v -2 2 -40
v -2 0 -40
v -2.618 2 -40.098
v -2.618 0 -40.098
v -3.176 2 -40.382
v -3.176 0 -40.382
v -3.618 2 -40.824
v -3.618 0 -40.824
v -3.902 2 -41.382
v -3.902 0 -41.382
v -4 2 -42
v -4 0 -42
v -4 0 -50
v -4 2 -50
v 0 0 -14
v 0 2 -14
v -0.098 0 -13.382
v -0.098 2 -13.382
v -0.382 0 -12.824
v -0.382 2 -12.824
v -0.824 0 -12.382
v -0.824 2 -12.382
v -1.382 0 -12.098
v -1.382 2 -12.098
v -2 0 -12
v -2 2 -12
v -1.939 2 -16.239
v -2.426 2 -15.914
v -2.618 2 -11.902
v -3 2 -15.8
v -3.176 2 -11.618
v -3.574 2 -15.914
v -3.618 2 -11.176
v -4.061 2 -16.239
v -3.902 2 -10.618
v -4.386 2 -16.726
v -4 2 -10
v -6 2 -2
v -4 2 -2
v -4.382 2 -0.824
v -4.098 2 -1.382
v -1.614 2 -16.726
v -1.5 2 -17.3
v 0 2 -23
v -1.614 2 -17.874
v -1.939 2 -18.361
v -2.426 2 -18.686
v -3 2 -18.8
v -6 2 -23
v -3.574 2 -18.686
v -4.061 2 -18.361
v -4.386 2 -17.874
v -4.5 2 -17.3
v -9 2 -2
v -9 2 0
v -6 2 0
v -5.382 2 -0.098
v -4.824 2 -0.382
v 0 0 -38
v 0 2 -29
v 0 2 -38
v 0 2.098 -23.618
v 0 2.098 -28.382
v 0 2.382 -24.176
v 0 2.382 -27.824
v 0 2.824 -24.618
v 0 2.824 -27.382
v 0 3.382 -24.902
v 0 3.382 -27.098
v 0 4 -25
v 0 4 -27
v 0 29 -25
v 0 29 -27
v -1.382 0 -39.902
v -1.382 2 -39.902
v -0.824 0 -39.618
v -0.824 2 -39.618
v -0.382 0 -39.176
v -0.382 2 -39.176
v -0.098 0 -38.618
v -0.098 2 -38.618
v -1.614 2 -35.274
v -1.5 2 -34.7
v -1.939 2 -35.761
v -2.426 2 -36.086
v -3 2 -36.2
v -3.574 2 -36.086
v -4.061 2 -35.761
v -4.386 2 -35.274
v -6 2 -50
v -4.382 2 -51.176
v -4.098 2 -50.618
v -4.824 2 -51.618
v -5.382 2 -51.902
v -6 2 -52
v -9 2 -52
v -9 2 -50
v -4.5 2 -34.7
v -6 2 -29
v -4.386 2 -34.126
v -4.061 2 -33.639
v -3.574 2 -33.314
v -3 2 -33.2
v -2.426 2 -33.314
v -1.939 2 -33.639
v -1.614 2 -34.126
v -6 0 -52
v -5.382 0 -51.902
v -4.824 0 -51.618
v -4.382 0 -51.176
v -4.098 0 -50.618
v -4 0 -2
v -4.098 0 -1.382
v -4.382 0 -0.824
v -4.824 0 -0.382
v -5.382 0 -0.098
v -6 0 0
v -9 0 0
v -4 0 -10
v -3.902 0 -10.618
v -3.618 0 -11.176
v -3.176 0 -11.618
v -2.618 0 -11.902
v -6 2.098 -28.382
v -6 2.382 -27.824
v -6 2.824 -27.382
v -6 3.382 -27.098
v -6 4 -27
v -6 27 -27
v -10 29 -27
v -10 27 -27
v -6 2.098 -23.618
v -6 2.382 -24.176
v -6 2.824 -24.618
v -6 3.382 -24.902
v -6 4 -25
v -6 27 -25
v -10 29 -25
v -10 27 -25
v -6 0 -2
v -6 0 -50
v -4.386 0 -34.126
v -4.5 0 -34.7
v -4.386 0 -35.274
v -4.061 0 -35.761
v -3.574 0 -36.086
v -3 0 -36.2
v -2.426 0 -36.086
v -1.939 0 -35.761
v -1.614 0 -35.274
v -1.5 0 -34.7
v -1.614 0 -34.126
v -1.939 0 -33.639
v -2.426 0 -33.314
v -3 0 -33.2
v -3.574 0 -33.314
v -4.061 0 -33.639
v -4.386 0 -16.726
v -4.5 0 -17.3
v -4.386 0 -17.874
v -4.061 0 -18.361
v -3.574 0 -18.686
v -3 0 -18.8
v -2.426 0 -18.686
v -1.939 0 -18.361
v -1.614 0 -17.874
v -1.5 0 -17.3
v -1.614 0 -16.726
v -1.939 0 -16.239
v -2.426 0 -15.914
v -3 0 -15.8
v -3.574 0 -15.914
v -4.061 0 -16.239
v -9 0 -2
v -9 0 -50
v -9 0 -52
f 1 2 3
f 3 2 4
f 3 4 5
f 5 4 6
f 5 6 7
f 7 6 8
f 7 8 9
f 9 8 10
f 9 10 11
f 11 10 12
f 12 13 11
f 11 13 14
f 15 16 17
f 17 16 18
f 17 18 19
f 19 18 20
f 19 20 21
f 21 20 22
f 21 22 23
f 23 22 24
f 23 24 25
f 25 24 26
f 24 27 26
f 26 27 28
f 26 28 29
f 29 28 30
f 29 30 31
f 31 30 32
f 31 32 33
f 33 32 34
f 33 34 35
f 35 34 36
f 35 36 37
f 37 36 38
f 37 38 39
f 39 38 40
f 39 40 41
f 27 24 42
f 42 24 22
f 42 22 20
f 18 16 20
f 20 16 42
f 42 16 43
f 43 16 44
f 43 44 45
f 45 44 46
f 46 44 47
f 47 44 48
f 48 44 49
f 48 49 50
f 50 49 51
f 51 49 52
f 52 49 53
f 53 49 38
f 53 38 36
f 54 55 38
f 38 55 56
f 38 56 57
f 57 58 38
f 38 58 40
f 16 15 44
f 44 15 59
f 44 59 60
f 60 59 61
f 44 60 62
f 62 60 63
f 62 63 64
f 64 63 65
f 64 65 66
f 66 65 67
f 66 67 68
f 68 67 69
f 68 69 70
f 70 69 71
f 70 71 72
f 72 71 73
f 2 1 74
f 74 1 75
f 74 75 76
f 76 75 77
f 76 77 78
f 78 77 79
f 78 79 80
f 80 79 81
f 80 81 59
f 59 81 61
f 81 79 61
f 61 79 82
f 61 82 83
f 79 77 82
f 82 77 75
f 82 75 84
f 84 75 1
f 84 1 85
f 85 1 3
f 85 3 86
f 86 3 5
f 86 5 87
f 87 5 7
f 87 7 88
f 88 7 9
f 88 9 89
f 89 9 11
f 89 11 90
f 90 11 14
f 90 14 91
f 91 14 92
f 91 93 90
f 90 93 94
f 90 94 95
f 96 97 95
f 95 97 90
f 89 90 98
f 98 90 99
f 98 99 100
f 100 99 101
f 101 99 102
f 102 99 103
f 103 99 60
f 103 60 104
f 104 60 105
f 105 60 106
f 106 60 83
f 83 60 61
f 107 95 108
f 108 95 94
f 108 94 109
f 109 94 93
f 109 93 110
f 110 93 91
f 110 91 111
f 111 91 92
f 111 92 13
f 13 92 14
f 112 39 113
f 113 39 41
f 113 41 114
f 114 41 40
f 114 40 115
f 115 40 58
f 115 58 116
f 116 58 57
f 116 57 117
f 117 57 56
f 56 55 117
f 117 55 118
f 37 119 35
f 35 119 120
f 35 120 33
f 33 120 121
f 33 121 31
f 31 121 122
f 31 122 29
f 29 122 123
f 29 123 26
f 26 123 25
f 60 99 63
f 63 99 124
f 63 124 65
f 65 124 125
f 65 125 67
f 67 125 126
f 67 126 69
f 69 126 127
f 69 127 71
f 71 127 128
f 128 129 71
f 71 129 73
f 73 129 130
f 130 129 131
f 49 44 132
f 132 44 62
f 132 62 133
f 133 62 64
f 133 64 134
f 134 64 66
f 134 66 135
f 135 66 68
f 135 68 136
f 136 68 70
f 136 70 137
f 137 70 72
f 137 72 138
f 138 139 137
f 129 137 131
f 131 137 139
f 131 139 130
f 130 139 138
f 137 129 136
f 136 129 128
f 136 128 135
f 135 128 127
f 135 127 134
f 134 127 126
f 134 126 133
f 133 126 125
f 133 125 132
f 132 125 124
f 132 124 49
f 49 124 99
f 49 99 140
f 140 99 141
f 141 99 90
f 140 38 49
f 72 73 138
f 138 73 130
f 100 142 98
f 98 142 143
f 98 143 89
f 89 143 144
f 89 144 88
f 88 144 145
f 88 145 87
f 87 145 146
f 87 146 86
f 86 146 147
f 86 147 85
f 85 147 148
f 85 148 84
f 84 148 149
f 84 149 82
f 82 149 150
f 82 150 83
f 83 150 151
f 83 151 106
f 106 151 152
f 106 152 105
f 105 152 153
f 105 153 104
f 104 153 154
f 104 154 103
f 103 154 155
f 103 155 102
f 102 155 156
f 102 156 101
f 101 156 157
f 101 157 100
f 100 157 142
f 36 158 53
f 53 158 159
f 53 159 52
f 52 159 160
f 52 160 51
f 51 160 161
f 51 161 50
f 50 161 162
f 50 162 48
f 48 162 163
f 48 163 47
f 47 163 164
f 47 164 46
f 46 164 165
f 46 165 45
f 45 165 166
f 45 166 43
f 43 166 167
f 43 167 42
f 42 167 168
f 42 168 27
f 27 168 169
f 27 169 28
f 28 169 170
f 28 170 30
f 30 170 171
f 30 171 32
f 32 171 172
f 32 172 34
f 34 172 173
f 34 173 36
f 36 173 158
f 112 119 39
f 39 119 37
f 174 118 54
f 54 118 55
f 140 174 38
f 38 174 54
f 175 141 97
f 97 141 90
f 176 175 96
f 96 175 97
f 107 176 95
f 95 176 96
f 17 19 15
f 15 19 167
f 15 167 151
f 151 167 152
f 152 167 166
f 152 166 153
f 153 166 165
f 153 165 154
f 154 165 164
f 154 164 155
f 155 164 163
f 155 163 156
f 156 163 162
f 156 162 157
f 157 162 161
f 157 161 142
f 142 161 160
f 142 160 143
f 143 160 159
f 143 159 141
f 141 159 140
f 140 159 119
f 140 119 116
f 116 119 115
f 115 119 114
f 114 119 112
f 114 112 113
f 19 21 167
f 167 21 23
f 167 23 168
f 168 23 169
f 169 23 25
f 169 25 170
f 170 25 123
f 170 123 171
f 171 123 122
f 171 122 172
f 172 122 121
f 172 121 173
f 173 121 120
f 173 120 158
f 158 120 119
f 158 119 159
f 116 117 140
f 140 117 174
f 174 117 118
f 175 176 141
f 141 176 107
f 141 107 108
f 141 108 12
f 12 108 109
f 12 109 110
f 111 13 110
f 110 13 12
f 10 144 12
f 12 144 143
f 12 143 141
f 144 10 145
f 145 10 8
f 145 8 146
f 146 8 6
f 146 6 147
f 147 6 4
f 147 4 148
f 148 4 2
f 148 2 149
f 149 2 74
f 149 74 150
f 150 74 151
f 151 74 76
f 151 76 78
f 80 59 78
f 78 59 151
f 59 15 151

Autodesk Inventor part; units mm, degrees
ref_plane "YZ Plane" through (0, 0, 0) normal (1, 0, 0) x (0, 1, 0)
ref_plane "XZ Plane" through (0, 0, 0) normal (0, 1, 0) x (-1, 0, 0)
ref_plane "XY Plane" through (0, 0, 0) normal (0, 0, 1) x (1, 0, 0)
sketch "Sketch1" plane through (0, 0, 0) normal (0, 1, 0) x (-1, 0, 0)
  line L0 (0, 0) -> (6, 0)
  line L1 (6, 0) -> (6, -52)
  line L2 (6, -52) -> (0, -52)
  line L3 (0, -52) -> (0, 0)
  line L4 (6, 0) -> (9, 0)
  line L5 (9, 0) -> (9, -2)
  line L6 (9, -2) -> (6, -2)
  line L7 (6, -2) -> (6, 0)
  line L8 (6, -52) -> (9, -52)
  line L9 (9, -52) -> (9, -50)
  line L10 (9, -50) -> (6, -50)
  line L11 (6, -50) -> (6, -52)
  line L12 (0, 0) -> (4, 0)
  line L13 (4, 0) -> (4, -12)
  line L14 (4, -12) -> (0, -12)
  line L15 (0, -12) -> (0, 0)
  line L16 (0, -52) -> (4, -52)
  line L17 (4, -52) -> (4, -40)
  line L18 (4, -40) -> (0, -40)
  line L19 (0, -40) -> (0, -52)
  line L20 (0, -26) -> (3, -26)
  line L21 (3, -26) -> (3, -34.7)
  line L22 (3, -34.7) -> (3, -17.3)
  circle A0 centre (3, -17.3) radius 1.5
  circle A1 centre (3, -34.7) radius 1.5
  point P0 (0, -40)
  point P1 (6, -50)
  point P2 (6, -2)
  dimension "d0" = 6
  dimension "d1" = 52
  dimension "d2" = 3
  dimension "d3" = 2
  dimension "d4" = 3
  dimension "d5" = 2
  dimension "d6" = 4
  dimension "d7" = 12
  dimension "d8" = 4
  dimension "d9" = 12
  dimension "d10" = 3
  dimension "d11" = 8.7
  dimension "d12" = 17.4
  dimension "d13" = 3
  dimension "d14" = 3
extrude "Extrusion1" add sketch "Sketch1" along normal blind 2 contours L0 L1 L2 L17 L18 L3 L14 L13 | L4 L5 L6 L1 | L10 L9 L8 L1
sketch "Sketch2" plane through (0, 2, 0) normal (0, 1, 0) x (1, 0, 0)
  line L0 (0, 12) -> (0, 40) projected
  line L1 (0, 26) -> (-6, 26)
  line L2 (-6, 50) -> (-6, 2) projected
  line L3 (0, 25) -> (-6, 25)
  line L4 (-6, 25) -> (-6, 27)
  line L5 (-6, 27) -> (0, 27)
  line L6 (0, 27) -> (0, 25)
  line L7 (0, 25) -> (-6, 27) construction
  line L8 (-6, 25) -> (0, 27) construction
  point P0 (0, 0)
  point P1 (-3, 26)
  point P2 (0, 25)
  point P3 (0, 27)
  dimension "d17" = 2
extrude "Extrusion2" add sketch "Sketch2" along normal blind 27
sketch "Sketch3" plane through (-6, 0, -50) normal (-1, 0, 0) x (0, 0, 1)
  line L0 (23, 29) -> (25, 29) projected
  line L1 (25, 2) -> (25, 29) projected
  line L2 (23, 29) -> (25, 29)
  line L3 (25, 29) -> (25, 27)
  line L4 (25, 27) -> (23, 27)
  line L5 (23, 27) -> (23, 29)
  point P0 (50, 0)
  dimension "d20" = 2
extrude "Extrusion3" add sketch "Sketch3" along normal blind 4
fillet "Fillet1" radius 2 8 edges at (-3, 2, -25) (-3, 2, -27) (-4, 1, -12) (-4, 1, 0) (-4, 1, -52) (0, 1, -40) (0, 1, -12) (-4, 1, -40)
properties part number "battery_holder_1"
